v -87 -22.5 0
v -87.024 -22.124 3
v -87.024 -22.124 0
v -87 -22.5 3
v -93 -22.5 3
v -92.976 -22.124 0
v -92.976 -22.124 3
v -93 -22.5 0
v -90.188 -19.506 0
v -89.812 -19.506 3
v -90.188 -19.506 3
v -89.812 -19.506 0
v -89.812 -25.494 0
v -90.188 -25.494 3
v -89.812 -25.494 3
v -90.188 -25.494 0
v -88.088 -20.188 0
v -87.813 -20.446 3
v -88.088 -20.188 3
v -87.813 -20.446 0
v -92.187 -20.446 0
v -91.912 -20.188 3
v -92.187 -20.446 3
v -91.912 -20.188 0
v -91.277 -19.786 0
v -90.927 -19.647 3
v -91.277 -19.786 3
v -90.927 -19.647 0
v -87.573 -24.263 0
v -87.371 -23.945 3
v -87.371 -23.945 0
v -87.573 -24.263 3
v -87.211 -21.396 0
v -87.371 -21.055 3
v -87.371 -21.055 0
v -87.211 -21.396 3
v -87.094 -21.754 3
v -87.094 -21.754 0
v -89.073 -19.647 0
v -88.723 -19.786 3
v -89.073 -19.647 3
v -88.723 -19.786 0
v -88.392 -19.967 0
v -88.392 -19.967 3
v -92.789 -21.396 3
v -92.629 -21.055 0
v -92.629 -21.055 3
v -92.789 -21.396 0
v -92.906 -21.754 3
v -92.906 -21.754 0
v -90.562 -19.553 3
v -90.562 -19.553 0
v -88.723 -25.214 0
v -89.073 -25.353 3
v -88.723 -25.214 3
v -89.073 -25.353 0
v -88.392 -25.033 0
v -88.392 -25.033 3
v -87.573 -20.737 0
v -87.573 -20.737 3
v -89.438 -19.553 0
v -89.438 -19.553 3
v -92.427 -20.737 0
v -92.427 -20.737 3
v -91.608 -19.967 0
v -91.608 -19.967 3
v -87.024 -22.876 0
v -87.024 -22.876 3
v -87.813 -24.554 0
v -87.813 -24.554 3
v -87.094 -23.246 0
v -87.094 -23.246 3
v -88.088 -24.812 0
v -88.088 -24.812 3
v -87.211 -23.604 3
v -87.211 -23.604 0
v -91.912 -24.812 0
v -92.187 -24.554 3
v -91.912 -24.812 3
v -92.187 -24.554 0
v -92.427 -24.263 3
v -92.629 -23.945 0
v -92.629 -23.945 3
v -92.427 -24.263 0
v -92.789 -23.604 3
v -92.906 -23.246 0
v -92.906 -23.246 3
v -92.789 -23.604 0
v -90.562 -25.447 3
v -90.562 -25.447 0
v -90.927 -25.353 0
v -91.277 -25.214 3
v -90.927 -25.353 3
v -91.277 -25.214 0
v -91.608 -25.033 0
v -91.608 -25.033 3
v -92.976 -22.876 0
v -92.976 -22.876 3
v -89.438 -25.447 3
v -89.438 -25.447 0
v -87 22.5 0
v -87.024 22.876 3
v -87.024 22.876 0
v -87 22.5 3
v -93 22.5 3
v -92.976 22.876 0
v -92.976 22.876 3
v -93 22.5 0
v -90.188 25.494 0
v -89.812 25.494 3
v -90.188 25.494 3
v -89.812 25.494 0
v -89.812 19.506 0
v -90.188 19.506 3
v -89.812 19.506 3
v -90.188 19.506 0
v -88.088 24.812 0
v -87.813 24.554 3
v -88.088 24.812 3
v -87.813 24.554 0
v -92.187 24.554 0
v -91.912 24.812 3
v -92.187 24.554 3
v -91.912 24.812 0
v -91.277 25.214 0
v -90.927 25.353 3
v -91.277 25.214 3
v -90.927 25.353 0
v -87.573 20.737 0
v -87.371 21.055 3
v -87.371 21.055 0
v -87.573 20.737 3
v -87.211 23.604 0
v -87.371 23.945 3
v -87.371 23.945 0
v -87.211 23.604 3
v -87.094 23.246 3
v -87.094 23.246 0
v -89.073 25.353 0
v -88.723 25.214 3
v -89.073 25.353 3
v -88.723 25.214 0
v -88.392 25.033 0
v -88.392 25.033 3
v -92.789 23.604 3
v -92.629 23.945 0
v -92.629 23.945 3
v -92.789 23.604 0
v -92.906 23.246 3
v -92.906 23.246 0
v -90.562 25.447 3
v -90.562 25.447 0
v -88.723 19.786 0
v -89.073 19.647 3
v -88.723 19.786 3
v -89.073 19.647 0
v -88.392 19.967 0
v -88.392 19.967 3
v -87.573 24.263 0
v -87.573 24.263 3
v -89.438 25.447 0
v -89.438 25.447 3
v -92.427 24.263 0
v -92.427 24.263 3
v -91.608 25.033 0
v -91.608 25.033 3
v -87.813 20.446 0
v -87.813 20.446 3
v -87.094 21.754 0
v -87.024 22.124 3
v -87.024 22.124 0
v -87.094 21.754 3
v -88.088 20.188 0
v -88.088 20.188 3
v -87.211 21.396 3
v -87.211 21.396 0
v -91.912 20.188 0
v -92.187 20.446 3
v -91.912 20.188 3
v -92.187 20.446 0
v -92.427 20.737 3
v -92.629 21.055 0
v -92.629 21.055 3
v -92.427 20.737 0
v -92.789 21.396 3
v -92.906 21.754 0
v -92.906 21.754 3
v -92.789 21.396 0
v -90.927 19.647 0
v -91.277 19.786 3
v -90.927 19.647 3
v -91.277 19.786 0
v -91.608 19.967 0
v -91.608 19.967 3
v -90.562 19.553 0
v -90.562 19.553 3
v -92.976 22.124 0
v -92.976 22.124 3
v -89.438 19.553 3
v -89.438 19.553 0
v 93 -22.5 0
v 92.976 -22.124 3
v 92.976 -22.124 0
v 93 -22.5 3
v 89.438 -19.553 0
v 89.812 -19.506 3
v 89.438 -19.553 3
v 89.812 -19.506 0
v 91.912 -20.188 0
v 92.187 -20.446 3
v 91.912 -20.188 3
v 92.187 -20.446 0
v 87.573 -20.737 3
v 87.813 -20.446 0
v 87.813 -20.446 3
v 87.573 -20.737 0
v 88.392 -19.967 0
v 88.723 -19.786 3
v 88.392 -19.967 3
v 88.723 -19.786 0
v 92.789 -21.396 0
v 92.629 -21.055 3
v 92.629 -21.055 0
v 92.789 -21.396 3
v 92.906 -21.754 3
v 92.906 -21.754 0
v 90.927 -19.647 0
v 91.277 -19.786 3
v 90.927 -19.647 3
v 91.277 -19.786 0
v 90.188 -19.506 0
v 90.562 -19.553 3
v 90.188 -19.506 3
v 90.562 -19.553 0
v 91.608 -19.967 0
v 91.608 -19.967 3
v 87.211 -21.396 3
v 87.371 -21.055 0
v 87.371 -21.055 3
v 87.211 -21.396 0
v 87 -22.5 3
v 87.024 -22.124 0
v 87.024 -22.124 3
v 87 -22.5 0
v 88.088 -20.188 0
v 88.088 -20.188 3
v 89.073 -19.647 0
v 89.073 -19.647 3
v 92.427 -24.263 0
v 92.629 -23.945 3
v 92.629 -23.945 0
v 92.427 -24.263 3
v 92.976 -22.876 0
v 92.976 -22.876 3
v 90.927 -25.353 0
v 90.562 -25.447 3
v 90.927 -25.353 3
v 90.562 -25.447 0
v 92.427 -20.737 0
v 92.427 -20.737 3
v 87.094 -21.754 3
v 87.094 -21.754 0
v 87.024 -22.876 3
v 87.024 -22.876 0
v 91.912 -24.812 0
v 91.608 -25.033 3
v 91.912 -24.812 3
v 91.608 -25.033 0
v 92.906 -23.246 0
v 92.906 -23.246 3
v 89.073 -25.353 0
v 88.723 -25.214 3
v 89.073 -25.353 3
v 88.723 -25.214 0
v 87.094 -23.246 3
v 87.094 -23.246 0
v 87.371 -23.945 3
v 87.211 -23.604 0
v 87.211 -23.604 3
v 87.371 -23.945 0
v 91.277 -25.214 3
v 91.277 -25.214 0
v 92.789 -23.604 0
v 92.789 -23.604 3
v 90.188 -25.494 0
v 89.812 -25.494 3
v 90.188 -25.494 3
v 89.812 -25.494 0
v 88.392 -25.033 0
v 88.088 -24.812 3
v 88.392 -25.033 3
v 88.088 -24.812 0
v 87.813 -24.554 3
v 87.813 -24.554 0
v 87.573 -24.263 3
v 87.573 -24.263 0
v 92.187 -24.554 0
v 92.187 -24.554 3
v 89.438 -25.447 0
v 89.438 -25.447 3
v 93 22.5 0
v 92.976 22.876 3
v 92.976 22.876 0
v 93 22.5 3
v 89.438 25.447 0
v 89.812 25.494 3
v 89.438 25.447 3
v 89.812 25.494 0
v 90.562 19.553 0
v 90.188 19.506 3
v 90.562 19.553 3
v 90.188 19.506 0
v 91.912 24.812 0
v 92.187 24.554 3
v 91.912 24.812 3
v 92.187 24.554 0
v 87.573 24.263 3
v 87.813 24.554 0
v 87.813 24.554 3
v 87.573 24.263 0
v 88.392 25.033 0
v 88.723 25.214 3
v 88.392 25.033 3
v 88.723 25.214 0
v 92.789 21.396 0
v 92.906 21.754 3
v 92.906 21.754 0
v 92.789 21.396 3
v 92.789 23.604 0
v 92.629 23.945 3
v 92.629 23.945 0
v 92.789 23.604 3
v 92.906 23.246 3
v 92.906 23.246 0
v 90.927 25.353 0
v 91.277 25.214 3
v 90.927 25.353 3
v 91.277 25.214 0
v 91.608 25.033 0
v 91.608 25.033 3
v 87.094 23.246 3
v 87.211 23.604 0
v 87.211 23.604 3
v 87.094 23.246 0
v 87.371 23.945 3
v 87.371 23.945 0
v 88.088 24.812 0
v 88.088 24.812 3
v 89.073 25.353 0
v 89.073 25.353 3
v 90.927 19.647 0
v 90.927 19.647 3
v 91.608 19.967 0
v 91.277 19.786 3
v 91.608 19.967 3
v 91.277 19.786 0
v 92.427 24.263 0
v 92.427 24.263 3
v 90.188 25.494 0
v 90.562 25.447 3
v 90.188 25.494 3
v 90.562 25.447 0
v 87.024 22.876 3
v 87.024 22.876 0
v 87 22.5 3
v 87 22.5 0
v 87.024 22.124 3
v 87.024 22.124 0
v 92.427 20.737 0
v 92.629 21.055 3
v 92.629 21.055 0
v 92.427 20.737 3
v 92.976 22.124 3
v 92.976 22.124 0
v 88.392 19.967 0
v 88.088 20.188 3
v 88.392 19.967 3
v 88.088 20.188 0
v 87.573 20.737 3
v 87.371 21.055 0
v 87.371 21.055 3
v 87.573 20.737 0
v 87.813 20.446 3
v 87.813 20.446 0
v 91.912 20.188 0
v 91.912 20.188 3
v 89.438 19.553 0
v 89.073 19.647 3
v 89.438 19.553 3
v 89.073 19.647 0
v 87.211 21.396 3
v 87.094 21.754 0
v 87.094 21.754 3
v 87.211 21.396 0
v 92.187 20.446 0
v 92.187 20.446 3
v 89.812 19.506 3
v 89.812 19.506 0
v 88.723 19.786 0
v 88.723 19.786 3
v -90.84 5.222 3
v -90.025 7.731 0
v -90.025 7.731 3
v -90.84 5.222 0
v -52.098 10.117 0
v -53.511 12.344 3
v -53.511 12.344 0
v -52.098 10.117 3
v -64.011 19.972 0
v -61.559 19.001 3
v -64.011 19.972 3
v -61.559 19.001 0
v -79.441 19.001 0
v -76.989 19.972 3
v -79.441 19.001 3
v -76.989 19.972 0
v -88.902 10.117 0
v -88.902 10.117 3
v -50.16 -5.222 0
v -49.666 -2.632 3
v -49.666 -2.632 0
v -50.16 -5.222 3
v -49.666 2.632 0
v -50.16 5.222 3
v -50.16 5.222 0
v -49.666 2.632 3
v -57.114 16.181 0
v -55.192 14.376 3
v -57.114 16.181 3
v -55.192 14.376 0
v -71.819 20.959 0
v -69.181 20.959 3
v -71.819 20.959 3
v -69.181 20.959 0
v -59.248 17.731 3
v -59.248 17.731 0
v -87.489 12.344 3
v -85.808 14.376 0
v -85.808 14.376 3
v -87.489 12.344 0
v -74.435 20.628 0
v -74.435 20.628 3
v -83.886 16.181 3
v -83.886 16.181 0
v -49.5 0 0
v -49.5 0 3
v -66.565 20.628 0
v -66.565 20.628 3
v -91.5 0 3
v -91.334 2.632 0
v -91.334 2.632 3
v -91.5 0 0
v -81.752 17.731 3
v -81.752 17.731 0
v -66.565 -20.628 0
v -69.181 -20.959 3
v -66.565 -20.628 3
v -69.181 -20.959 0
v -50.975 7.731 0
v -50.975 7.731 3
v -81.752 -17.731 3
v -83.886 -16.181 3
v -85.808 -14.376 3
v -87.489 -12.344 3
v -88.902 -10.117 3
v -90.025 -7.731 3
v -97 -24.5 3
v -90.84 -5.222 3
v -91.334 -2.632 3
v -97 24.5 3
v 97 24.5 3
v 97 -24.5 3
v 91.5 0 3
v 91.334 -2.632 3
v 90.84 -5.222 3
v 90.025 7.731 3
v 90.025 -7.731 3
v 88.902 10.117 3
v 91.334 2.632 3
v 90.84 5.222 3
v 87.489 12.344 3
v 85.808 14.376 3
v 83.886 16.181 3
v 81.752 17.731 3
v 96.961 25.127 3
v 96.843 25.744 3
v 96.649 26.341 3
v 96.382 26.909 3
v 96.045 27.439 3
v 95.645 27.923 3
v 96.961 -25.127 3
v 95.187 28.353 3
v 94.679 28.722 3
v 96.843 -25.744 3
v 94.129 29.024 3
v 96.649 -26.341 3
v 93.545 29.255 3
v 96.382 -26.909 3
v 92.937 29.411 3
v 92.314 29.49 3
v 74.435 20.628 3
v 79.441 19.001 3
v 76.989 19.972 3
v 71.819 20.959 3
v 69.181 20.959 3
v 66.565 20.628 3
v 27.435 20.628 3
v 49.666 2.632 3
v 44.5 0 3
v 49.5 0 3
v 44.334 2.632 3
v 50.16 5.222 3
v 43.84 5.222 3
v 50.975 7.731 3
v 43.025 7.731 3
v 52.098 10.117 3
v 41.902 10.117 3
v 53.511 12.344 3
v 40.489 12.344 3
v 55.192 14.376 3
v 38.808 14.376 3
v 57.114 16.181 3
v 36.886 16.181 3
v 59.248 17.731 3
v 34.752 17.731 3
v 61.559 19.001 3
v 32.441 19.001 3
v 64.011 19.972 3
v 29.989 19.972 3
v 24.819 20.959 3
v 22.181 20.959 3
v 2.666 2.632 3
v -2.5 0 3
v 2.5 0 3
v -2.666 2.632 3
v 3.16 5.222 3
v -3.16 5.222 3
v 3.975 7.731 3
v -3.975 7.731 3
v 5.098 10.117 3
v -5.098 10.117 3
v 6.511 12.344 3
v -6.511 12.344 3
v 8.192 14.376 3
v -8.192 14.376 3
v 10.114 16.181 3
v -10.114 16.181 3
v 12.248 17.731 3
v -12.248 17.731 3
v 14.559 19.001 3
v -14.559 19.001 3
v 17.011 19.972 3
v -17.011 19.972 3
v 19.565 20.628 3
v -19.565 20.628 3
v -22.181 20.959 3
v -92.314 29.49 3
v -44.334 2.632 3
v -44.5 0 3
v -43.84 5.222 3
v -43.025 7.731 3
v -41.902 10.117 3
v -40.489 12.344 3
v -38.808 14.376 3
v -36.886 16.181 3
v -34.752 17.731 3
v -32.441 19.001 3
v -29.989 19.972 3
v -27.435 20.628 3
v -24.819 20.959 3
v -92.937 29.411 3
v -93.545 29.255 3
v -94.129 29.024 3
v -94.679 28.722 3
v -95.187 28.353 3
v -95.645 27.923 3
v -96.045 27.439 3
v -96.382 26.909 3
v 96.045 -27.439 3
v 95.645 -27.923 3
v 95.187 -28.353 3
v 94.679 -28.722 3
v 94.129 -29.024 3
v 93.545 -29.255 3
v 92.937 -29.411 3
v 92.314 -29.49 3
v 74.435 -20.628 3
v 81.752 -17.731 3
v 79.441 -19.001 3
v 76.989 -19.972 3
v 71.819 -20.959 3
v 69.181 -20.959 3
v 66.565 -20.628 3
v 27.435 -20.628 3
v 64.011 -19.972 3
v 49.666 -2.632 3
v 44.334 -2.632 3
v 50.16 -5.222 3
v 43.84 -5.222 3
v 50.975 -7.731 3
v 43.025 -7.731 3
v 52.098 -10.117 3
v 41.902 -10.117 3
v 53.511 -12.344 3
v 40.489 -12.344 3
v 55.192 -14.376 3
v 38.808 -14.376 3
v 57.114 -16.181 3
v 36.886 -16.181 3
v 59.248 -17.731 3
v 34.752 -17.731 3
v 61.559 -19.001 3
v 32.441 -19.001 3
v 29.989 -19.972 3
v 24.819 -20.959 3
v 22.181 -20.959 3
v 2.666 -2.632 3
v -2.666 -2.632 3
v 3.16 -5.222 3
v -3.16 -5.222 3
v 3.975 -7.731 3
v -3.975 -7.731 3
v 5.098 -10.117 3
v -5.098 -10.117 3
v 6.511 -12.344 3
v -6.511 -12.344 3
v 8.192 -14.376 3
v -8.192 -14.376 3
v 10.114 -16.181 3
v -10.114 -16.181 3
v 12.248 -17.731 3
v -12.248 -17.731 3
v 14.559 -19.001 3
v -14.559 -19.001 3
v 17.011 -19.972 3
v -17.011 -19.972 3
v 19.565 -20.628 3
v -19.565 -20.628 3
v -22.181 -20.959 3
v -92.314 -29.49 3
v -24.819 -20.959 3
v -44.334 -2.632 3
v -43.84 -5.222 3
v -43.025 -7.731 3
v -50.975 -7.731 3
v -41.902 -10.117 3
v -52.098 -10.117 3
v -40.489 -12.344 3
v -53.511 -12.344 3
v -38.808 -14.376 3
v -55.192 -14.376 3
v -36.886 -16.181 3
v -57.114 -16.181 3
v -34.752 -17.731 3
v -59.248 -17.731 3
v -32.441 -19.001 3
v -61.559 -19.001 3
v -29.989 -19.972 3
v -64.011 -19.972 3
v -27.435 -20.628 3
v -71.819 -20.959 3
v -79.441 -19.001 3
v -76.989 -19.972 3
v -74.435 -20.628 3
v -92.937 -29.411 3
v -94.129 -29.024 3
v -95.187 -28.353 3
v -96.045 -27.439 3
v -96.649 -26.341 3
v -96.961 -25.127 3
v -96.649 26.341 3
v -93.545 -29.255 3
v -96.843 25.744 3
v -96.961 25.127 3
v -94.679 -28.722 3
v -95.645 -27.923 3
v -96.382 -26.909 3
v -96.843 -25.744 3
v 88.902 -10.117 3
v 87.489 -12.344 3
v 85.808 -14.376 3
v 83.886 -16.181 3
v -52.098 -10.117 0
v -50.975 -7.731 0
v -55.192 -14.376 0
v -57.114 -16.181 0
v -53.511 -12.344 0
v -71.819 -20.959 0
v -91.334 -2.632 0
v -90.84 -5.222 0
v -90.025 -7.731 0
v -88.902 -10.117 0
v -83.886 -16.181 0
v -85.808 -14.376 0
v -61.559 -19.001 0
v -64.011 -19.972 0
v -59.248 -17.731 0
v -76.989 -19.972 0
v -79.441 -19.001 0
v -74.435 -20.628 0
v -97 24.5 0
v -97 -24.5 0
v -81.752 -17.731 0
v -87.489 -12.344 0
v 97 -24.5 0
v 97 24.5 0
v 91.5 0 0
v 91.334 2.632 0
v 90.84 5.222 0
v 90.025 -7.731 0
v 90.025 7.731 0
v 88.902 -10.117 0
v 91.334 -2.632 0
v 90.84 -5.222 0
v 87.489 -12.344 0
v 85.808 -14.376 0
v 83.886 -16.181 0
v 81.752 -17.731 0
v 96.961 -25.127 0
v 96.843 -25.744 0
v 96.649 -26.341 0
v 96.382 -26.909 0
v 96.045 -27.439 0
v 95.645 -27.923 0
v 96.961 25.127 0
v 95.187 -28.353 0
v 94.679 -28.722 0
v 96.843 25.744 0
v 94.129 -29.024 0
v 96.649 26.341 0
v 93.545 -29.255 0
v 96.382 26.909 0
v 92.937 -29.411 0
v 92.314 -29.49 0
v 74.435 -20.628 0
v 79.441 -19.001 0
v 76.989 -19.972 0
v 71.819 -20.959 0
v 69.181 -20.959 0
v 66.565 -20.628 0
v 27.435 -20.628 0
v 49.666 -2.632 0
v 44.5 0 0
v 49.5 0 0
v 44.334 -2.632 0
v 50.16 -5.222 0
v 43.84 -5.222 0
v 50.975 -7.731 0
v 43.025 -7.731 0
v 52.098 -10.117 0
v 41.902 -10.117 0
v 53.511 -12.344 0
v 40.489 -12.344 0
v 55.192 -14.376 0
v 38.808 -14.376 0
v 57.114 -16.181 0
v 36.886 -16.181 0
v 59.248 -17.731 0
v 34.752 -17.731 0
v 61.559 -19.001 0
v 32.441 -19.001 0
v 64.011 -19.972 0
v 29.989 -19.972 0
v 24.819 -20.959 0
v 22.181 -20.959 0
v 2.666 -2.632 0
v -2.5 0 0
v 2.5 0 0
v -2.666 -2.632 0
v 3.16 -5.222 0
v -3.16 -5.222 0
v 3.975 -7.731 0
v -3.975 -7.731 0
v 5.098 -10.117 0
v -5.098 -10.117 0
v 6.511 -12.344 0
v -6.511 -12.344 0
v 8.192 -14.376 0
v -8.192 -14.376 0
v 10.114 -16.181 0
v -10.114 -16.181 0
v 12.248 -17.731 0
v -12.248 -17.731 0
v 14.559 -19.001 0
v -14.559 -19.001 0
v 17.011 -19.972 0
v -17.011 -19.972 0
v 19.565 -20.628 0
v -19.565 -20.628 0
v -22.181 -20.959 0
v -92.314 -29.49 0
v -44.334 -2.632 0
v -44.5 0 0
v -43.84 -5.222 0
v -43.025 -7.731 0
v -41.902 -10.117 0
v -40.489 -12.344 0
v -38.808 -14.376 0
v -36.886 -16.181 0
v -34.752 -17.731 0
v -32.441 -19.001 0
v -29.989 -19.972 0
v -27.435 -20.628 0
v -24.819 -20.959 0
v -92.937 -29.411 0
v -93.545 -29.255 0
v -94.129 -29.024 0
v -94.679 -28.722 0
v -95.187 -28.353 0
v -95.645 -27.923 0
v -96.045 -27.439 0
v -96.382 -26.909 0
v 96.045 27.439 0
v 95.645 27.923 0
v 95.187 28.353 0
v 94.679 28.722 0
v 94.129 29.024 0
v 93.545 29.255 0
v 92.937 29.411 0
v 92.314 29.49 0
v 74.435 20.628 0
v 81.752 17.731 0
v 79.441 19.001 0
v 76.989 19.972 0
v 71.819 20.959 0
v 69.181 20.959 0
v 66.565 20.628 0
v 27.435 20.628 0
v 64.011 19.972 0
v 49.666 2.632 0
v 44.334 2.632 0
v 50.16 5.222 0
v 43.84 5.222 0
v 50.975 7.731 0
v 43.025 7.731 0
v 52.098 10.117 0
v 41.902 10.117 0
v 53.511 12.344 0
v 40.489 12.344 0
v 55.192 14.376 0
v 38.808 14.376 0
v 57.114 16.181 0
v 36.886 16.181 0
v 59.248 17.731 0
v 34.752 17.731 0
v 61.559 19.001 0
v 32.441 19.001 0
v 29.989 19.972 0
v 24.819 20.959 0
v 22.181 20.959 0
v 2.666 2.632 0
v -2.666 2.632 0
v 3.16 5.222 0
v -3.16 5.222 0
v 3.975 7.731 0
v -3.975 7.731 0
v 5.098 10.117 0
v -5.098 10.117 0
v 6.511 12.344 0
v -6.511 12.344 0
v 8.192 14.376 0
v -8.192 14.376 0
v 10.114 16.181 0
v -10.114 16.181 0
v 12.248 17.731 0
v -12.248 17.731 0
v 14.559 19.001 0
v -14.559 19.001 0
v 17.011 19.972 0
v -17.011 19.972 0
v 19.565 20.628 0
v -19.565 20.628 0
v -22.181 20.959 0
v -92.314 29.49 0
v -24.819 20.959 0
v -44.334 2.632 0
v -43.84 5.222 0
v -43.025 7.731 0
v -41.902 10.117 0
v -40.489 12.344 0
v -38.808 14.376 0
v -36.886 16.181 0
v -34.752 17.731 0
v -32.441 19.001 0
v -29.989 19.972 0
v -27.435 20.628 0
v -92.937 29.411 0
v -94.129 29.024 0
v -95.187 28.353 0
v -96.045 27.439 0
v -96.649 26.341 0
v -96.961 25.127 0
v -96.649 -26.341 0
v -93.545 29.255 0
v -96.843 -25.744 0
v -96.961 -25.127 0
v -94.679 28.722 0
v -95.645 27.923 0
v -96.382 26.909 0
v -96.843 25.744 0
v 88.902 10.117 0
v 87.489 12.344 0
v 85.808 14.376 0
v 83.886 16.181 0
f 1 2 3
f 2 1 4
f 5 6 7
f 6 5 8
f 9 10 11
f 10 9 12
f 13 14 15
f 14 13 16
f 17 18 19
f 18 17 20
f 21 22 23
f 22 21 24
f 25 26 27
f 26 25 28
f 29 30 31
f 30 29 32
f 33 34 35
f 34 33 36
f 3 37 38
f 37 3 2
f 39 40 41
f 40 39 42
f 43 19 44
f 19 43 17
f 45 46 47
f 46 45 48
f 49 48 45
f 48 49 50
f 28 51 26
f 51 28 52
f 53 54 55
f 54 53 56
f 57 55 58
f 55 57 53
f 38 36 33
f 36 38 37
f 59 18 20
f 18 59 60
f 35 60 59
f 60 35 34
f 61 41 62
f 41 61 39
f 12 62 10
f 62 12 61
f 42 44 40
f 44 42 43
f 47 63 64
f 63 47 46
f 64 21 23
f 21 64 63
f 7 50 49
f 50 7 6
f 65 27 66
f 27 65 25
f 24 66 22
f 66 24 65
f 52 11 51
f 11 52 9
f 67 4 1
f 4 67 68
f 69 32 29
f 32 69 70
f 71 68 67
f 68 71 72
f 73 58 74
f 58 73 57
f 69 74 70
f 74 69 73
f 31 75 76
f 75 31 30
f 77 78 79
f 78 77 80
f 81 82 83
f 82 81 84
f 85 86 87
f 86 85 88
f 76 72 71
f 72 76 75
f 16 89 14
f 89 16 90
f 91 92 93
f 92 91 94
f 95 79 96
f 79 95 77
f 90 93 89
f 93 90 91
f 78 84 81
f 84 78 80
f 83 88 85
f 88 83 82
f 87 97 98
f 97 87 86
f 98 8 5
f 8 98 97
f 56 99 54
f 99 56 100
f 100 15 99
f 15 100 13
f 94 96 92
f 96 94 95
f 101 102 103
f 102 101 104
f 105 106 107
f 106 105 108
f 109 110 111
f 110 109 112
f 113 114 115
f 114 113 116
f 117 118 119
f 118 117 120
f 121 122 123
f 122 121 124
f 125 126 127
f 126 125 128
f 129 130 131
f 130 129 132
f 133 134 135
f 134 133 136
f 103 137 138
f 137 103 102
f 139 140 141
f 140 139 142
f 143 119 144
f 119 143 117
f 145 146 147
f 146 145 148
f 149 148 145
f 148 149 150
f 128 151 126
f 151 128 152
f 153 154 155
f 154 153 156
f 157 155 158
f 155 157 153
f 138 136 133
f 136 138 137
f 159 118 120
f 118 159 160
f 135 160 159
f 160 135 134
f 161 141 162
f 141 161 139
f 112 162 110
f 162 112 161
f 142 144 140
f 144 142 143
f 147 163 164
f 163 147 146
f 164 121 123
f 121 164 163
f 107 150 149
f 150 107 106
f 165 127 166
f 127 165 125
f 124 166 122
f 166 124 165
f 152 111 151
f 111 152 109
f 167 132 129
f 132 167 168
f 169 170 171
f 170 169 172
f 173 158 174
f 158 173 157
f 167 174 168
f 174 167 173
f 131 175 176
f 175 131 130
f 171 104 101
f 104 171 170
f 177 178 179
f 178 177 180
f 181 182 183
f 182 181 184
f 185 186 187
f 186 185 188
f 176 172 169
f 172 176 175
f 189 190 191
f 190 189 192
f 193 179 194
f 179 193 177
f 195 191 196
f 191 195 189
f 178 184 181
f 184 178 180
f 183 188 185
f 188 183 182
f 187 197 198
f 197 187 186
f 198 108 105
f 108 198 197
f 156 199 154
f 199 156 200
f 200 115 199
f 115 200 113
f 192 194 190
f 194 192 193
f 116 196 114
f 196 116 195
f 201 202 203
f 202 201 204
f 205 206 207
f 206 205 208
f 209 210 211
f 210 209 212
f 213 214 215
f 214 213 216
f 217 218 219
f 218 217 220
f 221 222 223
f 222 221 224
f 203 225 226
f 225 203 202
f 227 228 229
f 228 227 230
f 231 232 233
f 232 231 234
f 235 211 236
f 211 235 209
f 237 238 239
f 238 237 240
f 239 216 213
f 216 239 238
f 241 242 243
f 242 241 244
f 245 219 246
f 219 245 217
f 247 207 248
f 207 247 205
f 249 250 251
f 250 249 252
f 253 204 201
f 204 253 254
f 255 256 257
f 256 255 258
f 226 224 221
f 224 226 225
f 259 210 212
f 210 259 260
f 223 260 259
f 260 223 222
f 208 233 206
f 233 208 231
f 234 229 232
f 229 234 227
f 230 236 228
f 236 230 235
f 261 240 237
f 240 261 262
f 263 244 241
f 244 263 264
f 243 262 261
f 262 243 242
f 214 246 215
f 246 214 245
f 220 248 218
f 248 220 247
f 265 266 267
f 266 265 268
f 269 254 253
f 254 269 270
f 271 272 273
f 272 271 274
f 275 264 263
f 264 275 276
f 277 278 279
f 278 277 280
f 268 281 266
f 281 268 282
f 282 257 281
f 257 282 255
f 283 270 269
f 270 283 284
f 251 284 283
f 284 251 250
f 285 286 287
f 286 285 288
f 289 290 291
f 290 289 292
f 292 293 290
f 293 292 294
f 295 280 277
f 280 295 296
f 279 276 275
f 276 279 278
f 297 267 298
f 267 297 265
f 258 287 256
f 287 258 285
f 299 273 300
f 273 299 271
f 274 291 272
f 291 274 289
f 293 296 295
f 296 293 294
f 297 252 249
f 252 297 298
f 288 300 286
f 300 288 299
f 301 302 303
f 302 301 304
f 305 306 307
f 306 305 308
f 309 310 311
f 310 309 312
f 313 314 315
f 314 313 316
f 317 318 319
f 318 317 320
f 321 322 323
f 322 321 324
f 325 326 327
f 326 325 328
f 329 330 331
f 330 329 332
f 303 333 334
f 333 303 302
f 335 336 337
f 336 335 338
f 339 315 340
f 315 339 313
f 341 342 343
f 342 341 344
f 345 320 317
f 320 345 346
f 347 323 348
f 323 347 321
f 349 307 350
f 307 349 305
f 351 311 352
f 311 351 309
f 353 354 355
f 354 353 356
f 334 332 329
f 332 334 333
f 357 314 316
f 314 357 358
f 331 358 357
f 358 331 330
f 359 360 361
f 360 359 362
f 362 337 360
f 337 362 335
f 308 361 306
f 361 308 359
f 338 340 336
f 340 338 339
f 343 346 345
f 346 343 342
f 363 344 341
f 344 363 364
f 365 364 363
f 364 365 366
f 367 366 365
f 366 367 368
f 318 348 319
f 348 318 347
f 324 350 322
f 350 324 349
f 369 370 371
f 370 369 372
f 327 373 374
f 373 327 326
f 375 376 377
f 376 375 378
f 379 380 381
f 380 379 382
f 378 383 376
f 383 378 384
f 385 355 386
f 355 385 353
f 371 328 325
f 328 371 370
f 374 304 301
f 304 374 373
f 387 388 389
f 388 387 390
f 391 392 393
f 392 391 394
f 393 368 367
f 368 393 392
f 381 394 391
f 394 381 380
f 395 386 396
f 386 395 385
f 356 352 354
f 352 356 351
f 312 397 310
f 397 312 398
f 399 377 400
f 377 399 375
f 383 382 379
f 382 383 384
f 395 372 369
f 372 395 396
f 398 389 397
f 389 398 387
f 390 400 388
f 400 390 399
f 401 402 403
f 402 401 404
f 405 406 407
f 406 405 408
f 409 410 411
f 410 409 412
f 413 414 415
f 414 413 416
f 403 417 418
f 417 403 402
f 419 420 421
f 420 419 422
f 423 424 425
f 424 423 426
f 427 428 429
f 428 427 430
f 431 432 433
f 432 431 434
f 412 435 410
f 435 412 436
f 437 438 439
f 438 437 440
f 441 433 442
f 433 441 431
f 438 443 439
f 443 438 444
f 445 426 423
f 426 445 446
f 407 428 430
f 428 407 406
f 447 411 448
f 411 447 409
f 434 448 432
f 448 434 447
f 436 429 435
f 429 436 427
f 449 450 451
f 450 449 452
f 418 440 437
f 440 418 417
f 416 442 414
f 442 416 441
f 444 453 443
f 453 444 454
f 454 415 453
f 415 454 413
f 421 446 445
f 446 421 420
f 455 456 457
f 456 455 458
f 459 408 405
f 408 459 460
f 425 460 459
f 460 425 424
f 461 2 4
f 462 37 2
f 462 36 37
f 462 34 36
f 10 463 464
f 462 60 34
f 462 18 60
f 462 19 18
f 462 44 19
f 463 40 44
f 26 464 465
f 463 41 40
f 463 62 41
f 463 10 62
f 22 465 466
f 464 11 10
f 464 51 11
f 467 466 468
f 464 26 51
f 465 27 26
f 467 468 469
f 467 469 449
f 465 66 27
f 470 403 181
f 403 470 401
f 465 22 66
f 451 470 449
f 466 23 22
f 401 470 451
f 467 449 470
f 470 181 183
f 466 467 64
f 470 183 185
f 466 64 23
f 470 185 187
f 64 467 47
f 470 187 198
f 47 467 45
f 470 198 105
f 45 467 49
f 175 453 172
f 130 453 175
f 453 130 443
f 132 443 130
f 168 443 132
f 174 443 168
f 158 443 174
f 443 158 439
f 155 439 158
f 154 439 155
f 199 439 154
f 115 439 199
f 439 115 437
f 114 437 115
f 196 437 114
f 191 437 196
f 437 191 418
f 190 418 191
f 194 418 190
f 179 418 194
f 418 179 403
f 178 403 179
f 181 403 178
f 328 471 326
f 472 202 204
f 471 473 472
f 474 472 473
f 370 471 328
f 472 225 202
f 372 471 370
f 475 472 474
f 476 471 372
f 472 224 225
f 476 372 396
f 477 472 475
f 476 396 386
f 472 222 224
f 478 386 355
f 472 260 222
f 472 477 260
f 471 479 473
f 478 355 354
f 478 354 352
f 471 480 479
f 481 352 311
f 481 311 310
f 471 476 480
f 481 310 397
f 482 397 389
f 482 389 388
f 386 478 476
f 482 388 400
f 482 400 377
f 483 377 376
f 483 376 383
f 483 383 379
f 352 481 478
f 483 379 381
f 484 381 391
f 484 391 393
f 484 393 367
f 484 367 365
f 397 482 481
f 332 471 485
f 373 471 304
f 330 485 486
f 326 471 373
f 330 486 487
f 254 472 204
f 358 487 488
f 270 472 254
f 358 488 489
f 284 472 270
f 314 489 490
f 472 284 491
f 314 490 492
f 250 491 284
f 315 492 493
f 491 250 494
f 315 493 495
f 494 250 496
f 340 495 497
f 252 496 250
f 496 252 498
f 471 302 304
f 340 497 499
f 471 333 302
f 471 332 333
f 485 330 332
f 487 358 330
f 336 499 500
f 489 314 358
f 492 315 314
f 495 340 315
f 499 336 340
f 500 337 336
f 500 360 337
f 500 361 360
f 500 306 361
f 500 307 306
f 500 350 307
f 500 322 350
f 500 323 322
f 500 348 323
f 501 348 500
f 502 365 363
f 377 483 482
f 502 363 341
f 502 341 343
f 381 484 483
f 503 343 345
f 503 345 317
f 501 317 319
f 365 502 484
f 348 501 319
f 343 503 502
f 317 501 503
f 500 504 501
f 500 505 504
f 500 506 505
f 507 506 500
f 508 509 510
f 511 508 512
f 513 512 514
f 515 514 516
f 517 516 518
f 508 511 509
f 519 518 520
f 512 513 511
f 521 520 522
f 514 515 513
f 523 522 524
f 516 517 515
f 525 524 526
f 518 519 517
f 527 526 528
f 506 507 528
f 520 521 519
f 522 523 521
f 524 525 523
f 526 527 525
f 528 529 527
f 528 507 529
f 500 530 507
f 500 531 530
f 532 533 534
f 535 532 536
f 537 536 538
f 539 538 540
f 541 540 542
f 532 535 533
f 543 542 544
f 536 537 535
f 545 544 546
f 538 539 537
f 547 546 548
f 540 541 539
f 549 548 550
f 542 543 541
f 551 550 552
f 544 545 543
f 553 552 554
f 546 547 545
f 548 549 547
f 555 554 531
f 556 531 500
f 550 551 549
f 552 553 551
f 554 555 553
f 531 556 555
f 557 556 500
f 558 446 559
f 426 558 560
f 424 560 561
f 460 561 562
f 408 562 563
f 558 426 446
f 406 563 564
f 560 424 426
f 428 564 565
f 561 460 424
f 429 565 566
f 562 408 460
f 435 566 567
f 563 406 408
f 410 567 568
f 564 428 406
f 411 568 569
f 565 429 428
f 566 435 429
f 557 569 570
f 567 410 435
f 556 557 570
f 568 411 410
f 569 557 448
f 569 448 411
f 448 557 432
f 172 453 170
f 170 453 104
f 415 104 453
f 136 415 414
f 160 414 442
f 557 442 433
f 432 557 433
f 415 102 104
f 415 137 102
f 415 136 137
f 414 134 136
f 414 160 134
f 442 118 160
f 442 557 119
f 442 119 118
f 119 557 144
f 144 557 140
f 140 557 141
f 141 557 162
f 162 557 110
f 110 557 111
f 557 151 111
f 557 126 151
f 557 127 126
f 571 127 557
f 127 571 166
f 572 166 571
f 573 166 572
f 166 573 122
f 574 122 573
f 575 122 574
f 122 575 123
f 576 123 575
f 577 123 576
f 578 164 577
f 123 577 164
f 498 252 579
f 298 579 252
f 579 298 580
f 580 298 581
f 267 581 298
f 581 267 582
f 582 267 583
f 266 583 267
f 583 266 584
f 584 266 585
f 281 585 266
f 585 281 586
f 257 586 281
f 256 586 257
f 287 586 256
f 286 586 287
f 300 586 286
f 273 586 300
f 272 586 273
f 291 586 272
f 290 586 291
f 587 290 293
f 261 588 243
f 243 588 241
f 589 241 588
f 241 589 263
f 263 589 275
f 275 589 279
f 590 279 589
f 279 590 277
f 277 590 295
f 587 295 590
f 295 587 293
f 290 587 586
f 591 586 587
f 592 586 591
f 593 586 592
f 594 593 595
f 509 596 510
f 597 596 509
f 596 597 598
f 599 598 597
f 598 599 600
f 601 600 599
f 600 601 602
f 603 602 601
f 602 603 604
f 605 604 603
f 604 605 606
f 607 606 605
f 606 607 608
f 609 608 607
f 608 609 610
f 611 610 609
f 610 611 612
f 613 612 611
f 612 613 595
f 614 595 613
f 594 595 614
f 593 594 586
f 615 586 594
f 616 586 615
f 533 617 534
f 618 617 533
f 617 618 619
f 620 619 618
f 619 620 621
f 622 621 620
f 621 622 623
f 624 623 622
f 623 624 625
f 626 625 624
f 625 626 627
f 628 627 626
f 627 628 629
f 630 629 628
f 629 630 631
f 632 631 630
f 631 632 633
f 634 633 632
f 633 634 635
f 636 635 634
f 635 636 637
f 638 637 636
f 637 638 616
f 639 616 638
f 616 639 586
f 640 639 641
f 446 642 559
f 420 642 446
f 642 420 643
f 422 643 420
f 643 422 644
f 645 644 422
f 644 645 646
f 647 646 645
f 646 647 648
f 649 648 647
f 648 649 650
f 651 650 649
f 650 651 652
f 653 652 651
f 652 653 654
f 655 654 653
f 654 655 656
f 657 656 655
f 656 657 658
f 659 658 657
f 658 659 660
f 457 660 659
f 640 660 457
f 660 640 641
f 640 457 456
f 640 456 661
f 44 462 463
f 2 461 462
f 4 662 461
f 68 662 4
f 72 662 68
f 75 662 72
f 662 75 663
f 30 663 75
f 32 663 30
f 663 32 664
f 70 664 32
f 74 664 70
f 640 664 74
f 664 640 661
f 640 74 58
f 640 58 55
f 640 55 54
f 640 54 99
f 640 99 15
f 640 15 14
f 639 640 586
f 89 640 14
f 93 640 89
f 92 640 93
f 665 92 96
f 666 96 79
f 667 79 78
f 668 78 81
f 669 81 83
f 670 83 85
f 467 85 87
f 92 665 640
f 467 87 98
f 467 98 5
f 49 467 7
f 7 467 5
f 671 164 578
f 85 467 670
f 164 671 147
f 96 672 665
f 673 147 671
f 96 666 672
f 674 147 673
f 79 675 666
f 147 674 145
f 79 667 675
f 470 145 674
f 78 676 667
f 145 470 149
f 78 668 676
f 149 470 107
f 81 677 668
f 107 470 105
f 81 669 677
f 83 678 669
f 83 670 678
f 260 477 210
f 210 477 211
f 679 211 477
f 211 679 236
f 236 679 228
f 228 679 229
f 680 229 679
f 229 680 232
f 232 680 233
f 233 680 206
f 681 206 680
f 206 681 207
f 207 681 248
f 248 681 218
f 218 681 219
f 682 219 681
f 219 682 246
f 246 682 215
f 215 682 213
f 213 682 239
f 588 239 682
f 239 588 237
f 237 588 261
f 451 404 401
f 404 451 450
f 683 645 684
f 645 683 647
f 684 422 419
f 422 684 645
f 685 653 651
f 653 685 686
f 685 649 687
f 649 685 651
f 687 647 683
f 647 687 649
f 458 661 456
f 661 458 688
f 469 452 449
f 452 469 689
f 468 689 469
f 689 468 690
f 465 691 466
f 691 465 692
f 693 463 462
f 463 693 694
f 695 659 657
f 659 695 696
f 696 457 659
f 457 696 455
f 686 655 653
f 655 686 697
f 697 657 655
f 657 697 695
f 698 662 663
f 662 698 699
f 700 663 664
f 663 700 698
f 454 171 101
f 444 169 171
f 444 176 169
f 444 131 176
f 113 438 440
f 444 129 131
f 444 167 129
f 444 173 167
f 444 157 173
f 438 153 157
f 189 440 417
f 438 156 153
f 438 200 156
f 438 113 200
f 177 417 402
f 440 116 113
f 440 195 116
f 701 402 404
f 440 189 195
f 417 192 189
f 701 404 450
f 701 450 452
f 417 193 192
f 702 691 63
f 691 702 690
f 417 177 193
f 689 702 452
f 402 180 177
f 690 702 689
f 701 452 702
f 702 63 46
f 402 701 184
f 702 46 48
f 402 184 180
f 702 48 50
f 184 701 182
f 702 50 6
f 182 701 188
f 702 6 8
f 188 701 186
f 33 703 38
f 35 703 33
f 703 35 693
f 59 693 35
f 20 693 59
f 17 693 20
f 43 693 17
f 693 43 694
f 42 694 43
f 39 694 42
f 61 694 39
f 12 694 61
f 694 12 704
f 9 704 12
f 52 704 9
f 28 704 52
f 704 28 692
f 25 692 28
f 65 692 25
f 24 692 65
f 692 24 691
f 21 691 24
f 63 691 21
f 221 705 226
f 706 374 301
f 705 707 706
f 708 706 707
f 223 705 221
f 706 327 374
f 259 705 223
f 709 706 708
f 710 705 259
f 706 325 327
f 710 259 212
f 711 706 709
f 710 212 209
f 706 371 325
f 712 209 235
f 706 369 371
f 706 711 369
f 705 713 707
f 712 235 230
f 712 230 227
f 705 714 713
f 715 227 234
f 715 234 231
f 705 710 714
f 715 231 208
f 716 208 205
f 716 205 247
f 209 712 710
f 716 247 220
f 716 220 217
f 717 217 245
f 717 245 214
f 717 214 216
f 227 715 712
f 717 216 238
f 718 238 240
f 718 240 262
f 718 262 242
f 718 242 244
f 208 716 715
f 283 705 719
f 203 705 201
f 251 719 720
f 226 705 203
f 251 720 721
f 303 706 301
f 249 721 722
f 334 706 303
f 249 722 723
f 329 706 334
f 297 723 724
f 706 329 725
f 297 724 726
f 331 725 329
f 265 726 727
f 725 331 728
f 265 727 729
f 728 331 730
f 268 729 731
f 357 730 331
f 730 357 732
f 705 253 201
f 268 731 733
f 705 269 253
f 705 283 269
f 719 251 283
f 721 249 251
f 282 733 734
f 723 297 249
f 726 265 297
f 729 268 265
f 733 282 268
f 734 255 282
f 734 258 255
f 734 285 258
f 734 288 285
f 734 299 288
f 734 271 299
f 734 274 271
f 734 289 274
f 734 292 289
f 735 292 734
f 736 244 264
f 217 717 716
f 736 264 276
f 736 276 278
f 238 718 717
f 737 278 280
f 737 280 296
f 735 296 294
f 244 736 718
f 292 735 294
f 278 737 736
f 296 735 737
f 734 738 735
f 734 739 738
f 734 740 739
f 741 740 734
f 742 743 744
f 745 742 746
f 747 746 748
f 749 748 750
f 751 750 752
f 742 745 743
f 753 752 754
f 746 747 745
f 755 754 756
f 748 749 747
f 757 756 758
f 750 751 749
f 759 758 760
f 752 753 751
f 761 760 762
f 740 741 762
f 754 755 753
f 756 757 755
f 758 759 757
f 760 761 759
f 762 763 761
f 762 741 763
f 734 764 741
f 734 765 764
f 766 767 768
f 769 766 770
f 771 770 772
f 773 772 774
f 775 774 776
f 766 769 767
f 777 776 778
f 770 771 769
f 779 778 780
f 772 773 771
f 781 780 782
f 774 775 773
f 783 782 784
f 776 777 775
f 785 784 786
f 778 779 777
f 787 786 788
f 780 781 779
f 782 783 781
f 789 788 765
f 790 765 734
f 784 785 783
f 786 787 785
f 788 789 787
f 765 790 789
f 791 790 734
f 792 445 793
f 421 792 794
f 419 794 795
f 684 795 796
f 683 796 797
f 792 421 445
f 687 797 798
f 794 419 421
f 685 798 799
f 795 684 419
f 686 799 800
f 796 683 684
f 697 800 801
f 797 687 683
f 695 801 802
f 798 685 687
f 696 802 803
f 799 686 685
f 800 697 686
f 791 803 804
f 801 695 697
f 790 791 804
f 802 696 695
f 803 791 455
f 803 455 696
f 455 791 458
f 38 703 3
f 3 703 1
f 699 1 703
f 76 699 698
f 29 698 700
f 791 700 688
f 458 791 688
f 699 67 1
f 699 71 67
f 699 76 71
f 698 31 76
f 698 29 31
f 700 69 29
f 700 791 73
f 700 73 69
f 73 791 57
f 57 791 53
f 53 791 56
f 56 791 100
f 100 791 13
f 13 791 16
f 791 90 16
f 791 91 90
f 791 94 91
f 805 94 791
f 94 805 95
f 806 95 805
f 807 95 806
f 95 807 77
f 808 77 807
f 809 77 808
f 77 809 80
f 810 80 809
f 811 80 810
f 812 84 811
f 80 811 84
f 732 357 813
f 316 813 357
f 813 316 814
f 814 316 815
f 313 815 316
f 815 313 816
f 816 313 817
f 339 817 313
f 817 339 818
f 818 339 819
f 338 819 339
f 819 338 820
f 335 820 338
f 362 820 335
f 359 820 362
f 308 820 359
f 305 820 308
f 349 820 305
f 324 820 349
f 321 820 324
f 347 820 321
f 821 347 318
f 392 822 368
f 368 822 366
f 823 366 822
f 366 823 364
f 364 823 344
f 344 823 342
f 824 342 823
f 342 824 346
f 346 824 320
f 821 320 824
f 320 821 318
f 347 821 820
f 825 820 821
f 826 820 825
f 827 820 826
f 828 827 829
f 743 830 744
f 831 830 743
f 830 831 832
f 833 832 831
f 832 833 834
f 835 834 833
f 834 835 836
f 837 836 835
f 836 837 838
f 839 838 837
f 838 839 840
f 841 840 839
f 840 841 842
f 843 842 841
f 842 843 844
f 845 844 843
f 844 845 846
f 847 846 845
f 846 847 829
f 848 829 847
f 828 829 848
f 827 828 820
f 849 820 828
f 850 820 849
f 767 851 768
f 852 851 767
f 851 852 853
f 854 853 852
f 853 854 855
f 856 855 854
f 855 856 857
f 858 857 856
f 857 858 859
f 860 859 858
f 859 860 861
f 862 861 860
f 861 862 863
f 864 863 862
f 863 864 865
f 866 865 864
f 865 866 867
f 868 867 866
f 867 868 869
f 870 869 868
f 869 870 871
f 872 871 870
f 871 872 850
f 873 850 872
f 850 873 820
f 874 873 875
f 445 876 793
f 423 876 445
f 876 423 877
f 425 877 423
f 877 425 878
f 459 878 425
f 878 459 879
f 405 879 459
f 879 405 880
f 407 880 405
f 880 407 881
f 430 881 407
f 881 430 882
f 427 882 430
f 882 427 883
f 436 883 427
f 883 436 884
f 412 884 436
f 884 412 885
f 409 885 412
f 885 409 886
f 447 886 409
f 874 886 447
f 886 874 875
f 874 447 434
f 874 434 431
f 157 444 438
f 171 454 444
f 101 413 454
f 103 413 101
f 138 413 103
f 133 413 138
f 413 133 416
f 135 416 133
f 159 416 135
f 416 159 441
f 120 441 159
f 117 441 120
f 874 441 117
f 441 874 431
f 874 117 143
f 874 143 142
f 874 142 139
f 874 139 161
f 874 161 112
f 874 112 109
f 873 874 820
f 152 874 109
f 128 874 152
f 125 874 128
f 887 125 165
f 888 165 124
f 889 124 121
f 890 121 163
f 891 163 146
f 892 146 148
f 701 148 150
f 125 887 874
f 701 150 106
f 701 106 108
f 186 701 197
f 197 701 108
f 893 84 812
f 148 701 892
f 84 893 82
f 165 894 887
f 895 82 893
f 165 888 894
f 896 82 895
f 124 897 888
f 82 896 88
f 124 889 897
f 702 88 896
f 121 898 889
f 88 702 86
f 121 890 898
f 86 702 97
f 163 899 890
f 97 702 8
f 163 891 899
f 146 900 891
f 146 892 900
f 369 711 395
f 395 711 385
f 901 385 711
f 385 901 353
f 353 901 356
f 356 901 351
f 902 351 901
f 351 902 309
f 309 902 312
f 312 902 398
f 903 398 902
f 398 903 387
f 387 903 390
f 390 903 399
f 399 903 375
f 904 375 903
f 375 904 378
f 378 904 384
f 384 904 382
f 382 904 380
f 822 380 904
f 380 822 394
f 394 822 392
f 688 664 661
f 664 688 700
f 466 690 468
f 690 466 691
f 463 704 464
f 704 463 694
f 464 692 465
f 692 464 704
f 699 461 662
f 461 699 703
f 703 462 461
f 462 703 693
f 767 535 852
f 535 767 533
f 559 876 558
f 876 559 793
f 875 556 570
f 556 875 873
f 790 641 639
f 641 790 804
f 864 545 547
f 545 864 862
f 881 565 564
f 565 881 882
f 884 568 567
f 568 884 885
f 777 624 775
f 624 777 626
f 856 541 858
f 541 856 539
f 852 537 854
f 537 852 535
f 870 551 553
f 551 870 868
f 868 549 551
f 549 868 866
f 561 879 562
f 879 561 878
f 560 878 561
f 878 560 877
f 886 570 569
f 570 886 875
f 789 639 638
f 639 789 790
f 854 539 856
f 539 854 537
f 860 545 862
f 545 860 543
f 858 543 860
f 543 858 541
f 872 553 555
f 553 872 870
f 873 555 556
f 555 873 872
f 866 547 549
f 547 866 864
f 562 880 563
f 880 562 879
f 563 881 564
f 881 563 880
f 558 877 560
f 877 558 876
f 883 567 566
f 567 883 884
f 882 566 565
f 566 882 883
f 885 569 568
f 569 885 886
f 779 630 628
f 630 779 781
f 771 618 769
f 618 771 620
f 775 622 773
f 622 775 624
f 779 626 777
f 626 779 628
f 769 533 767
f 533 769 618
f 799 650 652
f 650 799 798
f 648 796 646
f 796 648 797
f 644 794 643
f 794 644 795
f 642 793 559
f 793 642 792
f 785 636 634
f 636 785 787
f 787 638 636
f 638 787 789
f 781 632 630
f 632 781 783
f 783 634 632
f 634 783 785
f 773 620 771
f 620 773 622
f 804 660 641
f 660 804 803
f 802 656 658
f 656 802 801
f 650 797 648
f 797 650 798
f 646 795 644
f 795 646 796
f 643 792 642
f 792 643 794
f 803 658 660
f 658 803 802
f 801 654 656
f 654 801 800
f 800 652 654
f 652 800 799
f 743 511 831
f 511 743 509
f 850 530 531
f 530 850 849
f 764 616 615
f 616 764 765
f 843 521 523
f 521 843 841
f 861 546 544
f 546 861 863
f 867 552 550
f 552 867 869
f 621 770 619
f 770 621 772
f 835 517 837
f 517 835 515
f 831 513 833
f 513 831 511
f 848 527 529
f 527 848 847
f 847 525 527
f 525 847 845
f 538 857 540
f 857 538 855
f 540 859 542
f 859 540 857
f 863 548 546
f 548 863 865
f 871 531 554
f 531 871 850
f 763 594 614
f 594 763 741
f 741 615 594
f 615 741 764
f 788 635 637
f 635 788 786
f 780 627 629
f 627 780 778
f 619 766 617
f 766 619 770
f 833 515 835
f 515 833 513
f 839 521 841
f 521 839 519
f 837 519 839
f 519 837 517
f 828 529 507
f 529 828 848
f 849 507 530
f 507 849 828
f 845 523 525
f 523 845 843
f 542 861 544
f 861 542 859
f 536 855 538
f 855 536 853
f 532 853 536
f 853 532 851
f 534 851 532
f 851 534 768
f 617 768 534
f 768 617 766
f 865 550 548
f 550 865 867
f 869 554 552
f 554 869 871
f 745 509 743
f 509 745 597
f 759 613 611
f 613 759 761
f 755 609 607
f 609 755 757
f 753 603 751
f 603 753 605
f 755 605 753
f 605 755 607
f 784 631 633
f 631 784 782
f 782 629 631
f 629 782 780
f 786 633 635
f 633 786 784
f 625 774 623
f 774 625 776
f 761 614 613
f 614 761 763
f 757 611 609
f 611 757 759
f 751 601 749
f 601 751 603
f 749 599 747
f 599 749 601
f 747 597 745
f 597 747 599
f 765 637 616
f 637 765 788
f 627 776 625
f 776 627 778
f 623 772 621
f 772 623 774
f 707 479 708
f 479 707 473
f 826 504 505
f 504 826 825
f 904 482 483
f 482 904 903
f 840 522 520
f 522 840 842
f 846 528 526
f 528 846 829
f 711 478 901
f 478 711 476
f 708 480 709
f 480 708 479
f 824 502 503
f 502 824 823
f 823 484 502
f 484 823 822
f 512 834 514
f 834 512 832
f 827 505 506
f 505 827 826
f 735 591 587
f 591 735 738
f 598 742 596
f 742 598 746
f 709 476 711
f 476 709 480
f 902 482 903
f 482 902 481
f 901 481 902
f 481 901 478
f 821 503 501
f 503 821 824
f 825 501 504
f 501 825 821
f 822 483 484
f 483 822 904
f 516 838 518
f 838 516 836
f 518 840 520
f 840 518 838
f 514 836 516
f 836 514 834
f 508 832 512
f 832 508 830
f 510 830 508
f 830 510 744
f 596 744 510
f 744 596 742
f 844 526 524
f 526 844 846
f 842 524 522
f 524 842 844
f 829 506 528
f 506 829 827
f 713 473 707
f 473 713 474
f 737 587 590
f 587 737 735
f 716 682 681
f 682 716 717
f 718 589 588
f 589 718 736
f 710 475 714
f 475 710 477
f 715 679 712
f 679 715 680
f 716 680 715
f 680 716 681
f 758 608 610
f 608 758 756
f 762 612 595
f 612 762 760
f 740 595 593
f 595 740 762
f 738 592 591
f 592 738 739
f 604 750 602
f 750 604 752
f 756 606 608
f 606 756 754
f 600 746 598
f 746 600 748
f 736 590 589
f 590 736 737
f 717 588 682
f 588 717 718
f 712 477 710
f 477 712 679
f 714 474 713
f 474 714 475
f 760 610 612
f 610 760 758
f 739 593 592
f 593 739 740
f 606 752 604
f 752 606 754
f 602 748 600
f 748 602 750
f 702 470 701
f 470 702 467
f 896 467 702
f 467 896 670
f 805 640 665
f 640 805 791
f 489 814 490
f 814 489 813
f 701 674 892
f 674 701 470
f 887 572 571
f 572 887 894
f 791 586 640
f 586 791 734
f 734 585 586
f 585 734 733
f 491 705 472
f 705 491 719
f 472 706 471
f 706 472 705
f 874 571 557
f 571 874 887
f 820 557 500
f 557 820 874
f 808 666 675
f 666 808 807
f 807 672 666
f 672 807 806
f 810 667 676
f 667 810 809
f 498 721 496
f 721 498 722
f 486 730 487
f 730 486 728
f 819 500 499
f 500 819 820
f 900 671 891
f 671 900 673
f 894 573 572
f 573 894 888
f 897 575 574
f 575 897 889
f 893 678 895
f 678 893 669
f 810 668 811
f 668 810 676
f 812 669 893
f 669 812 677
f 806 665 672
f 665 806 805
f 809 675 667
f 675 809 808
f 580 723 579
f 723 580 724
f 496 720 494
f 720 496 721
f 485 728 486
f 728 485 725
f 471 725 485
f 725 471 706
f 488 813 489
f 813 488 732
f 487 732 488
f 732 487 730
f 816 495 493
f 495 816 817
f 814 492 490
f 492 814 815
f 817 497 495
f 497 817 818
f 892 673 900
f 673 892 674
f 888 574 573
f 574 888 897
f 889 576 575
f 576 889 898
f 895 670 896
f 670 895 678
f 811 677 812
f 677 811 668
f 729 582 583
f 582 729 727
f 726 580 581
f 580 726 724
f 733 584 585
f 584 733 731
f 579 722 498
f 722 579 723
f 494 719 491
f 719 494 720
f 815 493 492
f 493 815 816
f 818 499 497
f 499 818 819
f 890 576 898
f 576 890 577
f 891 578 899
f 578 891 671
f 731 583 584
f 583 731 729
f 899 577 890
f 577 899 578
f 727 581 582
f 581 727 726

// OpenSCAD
$fn = 50;


difference() {
	union() {
		hull() {
			translate(v = [-92.0000000000, 24.5000000000, 0]) {
				cylinder(h = 3, r = 5);
			}
			translate(v = [92.0000000000, 24.5000000000, 0]) {
				cylinder(h = 3, r = 5);
			}
			translate(v = [-92.0000000000, -24.5000000000, 0]) {
				cylinder(h = 3, r = 5);
			}
			translate(v = [92.0000000000, -24.5000000000, 0]) {
				cylinder(h = 3, r = 5);
			}
		}
	}
	union() {
		#translate(v = [-90.0000000000, -22.5000000000, -100.0000000000]) {
			cylinder(h = 200, r = 3.0000000000);
		}
		#translate(v = [-90.0000000000, 22.5000000000, -100.0000000000]) {
			cylinder(h = 200, r = 3.0000000000);
		}
		#translate(v = [90.0000000000, -22.5000000000, -100.0000000000]) {
			cylinder(h = 200, r = 3.0000000000);
		}
		#translate(v = [90.0000000000, 22.5000000000, -100.0000000000]) {
			cylinder(h = 200, r = 3.0000000000);
		}
		#translate(v = [-70.5000000000, 0, 0]) {
			cylinder(h = 3, r = 21.0000000000);
		}
		#translate(v = [-23.5000000000, 0, 0]) {
			cylinder(h = 3, r = 21.0000000000);
		}
		#translate(v = [23.5000000000, 0, 0]) {
			cylinder(h = 3, r = 21.0000000000);
		}
		#translate(v = [70.5000000000, 0, 0]) {
			cylinder(h = 3, r = 21.0000000000);
		}
	}
}
